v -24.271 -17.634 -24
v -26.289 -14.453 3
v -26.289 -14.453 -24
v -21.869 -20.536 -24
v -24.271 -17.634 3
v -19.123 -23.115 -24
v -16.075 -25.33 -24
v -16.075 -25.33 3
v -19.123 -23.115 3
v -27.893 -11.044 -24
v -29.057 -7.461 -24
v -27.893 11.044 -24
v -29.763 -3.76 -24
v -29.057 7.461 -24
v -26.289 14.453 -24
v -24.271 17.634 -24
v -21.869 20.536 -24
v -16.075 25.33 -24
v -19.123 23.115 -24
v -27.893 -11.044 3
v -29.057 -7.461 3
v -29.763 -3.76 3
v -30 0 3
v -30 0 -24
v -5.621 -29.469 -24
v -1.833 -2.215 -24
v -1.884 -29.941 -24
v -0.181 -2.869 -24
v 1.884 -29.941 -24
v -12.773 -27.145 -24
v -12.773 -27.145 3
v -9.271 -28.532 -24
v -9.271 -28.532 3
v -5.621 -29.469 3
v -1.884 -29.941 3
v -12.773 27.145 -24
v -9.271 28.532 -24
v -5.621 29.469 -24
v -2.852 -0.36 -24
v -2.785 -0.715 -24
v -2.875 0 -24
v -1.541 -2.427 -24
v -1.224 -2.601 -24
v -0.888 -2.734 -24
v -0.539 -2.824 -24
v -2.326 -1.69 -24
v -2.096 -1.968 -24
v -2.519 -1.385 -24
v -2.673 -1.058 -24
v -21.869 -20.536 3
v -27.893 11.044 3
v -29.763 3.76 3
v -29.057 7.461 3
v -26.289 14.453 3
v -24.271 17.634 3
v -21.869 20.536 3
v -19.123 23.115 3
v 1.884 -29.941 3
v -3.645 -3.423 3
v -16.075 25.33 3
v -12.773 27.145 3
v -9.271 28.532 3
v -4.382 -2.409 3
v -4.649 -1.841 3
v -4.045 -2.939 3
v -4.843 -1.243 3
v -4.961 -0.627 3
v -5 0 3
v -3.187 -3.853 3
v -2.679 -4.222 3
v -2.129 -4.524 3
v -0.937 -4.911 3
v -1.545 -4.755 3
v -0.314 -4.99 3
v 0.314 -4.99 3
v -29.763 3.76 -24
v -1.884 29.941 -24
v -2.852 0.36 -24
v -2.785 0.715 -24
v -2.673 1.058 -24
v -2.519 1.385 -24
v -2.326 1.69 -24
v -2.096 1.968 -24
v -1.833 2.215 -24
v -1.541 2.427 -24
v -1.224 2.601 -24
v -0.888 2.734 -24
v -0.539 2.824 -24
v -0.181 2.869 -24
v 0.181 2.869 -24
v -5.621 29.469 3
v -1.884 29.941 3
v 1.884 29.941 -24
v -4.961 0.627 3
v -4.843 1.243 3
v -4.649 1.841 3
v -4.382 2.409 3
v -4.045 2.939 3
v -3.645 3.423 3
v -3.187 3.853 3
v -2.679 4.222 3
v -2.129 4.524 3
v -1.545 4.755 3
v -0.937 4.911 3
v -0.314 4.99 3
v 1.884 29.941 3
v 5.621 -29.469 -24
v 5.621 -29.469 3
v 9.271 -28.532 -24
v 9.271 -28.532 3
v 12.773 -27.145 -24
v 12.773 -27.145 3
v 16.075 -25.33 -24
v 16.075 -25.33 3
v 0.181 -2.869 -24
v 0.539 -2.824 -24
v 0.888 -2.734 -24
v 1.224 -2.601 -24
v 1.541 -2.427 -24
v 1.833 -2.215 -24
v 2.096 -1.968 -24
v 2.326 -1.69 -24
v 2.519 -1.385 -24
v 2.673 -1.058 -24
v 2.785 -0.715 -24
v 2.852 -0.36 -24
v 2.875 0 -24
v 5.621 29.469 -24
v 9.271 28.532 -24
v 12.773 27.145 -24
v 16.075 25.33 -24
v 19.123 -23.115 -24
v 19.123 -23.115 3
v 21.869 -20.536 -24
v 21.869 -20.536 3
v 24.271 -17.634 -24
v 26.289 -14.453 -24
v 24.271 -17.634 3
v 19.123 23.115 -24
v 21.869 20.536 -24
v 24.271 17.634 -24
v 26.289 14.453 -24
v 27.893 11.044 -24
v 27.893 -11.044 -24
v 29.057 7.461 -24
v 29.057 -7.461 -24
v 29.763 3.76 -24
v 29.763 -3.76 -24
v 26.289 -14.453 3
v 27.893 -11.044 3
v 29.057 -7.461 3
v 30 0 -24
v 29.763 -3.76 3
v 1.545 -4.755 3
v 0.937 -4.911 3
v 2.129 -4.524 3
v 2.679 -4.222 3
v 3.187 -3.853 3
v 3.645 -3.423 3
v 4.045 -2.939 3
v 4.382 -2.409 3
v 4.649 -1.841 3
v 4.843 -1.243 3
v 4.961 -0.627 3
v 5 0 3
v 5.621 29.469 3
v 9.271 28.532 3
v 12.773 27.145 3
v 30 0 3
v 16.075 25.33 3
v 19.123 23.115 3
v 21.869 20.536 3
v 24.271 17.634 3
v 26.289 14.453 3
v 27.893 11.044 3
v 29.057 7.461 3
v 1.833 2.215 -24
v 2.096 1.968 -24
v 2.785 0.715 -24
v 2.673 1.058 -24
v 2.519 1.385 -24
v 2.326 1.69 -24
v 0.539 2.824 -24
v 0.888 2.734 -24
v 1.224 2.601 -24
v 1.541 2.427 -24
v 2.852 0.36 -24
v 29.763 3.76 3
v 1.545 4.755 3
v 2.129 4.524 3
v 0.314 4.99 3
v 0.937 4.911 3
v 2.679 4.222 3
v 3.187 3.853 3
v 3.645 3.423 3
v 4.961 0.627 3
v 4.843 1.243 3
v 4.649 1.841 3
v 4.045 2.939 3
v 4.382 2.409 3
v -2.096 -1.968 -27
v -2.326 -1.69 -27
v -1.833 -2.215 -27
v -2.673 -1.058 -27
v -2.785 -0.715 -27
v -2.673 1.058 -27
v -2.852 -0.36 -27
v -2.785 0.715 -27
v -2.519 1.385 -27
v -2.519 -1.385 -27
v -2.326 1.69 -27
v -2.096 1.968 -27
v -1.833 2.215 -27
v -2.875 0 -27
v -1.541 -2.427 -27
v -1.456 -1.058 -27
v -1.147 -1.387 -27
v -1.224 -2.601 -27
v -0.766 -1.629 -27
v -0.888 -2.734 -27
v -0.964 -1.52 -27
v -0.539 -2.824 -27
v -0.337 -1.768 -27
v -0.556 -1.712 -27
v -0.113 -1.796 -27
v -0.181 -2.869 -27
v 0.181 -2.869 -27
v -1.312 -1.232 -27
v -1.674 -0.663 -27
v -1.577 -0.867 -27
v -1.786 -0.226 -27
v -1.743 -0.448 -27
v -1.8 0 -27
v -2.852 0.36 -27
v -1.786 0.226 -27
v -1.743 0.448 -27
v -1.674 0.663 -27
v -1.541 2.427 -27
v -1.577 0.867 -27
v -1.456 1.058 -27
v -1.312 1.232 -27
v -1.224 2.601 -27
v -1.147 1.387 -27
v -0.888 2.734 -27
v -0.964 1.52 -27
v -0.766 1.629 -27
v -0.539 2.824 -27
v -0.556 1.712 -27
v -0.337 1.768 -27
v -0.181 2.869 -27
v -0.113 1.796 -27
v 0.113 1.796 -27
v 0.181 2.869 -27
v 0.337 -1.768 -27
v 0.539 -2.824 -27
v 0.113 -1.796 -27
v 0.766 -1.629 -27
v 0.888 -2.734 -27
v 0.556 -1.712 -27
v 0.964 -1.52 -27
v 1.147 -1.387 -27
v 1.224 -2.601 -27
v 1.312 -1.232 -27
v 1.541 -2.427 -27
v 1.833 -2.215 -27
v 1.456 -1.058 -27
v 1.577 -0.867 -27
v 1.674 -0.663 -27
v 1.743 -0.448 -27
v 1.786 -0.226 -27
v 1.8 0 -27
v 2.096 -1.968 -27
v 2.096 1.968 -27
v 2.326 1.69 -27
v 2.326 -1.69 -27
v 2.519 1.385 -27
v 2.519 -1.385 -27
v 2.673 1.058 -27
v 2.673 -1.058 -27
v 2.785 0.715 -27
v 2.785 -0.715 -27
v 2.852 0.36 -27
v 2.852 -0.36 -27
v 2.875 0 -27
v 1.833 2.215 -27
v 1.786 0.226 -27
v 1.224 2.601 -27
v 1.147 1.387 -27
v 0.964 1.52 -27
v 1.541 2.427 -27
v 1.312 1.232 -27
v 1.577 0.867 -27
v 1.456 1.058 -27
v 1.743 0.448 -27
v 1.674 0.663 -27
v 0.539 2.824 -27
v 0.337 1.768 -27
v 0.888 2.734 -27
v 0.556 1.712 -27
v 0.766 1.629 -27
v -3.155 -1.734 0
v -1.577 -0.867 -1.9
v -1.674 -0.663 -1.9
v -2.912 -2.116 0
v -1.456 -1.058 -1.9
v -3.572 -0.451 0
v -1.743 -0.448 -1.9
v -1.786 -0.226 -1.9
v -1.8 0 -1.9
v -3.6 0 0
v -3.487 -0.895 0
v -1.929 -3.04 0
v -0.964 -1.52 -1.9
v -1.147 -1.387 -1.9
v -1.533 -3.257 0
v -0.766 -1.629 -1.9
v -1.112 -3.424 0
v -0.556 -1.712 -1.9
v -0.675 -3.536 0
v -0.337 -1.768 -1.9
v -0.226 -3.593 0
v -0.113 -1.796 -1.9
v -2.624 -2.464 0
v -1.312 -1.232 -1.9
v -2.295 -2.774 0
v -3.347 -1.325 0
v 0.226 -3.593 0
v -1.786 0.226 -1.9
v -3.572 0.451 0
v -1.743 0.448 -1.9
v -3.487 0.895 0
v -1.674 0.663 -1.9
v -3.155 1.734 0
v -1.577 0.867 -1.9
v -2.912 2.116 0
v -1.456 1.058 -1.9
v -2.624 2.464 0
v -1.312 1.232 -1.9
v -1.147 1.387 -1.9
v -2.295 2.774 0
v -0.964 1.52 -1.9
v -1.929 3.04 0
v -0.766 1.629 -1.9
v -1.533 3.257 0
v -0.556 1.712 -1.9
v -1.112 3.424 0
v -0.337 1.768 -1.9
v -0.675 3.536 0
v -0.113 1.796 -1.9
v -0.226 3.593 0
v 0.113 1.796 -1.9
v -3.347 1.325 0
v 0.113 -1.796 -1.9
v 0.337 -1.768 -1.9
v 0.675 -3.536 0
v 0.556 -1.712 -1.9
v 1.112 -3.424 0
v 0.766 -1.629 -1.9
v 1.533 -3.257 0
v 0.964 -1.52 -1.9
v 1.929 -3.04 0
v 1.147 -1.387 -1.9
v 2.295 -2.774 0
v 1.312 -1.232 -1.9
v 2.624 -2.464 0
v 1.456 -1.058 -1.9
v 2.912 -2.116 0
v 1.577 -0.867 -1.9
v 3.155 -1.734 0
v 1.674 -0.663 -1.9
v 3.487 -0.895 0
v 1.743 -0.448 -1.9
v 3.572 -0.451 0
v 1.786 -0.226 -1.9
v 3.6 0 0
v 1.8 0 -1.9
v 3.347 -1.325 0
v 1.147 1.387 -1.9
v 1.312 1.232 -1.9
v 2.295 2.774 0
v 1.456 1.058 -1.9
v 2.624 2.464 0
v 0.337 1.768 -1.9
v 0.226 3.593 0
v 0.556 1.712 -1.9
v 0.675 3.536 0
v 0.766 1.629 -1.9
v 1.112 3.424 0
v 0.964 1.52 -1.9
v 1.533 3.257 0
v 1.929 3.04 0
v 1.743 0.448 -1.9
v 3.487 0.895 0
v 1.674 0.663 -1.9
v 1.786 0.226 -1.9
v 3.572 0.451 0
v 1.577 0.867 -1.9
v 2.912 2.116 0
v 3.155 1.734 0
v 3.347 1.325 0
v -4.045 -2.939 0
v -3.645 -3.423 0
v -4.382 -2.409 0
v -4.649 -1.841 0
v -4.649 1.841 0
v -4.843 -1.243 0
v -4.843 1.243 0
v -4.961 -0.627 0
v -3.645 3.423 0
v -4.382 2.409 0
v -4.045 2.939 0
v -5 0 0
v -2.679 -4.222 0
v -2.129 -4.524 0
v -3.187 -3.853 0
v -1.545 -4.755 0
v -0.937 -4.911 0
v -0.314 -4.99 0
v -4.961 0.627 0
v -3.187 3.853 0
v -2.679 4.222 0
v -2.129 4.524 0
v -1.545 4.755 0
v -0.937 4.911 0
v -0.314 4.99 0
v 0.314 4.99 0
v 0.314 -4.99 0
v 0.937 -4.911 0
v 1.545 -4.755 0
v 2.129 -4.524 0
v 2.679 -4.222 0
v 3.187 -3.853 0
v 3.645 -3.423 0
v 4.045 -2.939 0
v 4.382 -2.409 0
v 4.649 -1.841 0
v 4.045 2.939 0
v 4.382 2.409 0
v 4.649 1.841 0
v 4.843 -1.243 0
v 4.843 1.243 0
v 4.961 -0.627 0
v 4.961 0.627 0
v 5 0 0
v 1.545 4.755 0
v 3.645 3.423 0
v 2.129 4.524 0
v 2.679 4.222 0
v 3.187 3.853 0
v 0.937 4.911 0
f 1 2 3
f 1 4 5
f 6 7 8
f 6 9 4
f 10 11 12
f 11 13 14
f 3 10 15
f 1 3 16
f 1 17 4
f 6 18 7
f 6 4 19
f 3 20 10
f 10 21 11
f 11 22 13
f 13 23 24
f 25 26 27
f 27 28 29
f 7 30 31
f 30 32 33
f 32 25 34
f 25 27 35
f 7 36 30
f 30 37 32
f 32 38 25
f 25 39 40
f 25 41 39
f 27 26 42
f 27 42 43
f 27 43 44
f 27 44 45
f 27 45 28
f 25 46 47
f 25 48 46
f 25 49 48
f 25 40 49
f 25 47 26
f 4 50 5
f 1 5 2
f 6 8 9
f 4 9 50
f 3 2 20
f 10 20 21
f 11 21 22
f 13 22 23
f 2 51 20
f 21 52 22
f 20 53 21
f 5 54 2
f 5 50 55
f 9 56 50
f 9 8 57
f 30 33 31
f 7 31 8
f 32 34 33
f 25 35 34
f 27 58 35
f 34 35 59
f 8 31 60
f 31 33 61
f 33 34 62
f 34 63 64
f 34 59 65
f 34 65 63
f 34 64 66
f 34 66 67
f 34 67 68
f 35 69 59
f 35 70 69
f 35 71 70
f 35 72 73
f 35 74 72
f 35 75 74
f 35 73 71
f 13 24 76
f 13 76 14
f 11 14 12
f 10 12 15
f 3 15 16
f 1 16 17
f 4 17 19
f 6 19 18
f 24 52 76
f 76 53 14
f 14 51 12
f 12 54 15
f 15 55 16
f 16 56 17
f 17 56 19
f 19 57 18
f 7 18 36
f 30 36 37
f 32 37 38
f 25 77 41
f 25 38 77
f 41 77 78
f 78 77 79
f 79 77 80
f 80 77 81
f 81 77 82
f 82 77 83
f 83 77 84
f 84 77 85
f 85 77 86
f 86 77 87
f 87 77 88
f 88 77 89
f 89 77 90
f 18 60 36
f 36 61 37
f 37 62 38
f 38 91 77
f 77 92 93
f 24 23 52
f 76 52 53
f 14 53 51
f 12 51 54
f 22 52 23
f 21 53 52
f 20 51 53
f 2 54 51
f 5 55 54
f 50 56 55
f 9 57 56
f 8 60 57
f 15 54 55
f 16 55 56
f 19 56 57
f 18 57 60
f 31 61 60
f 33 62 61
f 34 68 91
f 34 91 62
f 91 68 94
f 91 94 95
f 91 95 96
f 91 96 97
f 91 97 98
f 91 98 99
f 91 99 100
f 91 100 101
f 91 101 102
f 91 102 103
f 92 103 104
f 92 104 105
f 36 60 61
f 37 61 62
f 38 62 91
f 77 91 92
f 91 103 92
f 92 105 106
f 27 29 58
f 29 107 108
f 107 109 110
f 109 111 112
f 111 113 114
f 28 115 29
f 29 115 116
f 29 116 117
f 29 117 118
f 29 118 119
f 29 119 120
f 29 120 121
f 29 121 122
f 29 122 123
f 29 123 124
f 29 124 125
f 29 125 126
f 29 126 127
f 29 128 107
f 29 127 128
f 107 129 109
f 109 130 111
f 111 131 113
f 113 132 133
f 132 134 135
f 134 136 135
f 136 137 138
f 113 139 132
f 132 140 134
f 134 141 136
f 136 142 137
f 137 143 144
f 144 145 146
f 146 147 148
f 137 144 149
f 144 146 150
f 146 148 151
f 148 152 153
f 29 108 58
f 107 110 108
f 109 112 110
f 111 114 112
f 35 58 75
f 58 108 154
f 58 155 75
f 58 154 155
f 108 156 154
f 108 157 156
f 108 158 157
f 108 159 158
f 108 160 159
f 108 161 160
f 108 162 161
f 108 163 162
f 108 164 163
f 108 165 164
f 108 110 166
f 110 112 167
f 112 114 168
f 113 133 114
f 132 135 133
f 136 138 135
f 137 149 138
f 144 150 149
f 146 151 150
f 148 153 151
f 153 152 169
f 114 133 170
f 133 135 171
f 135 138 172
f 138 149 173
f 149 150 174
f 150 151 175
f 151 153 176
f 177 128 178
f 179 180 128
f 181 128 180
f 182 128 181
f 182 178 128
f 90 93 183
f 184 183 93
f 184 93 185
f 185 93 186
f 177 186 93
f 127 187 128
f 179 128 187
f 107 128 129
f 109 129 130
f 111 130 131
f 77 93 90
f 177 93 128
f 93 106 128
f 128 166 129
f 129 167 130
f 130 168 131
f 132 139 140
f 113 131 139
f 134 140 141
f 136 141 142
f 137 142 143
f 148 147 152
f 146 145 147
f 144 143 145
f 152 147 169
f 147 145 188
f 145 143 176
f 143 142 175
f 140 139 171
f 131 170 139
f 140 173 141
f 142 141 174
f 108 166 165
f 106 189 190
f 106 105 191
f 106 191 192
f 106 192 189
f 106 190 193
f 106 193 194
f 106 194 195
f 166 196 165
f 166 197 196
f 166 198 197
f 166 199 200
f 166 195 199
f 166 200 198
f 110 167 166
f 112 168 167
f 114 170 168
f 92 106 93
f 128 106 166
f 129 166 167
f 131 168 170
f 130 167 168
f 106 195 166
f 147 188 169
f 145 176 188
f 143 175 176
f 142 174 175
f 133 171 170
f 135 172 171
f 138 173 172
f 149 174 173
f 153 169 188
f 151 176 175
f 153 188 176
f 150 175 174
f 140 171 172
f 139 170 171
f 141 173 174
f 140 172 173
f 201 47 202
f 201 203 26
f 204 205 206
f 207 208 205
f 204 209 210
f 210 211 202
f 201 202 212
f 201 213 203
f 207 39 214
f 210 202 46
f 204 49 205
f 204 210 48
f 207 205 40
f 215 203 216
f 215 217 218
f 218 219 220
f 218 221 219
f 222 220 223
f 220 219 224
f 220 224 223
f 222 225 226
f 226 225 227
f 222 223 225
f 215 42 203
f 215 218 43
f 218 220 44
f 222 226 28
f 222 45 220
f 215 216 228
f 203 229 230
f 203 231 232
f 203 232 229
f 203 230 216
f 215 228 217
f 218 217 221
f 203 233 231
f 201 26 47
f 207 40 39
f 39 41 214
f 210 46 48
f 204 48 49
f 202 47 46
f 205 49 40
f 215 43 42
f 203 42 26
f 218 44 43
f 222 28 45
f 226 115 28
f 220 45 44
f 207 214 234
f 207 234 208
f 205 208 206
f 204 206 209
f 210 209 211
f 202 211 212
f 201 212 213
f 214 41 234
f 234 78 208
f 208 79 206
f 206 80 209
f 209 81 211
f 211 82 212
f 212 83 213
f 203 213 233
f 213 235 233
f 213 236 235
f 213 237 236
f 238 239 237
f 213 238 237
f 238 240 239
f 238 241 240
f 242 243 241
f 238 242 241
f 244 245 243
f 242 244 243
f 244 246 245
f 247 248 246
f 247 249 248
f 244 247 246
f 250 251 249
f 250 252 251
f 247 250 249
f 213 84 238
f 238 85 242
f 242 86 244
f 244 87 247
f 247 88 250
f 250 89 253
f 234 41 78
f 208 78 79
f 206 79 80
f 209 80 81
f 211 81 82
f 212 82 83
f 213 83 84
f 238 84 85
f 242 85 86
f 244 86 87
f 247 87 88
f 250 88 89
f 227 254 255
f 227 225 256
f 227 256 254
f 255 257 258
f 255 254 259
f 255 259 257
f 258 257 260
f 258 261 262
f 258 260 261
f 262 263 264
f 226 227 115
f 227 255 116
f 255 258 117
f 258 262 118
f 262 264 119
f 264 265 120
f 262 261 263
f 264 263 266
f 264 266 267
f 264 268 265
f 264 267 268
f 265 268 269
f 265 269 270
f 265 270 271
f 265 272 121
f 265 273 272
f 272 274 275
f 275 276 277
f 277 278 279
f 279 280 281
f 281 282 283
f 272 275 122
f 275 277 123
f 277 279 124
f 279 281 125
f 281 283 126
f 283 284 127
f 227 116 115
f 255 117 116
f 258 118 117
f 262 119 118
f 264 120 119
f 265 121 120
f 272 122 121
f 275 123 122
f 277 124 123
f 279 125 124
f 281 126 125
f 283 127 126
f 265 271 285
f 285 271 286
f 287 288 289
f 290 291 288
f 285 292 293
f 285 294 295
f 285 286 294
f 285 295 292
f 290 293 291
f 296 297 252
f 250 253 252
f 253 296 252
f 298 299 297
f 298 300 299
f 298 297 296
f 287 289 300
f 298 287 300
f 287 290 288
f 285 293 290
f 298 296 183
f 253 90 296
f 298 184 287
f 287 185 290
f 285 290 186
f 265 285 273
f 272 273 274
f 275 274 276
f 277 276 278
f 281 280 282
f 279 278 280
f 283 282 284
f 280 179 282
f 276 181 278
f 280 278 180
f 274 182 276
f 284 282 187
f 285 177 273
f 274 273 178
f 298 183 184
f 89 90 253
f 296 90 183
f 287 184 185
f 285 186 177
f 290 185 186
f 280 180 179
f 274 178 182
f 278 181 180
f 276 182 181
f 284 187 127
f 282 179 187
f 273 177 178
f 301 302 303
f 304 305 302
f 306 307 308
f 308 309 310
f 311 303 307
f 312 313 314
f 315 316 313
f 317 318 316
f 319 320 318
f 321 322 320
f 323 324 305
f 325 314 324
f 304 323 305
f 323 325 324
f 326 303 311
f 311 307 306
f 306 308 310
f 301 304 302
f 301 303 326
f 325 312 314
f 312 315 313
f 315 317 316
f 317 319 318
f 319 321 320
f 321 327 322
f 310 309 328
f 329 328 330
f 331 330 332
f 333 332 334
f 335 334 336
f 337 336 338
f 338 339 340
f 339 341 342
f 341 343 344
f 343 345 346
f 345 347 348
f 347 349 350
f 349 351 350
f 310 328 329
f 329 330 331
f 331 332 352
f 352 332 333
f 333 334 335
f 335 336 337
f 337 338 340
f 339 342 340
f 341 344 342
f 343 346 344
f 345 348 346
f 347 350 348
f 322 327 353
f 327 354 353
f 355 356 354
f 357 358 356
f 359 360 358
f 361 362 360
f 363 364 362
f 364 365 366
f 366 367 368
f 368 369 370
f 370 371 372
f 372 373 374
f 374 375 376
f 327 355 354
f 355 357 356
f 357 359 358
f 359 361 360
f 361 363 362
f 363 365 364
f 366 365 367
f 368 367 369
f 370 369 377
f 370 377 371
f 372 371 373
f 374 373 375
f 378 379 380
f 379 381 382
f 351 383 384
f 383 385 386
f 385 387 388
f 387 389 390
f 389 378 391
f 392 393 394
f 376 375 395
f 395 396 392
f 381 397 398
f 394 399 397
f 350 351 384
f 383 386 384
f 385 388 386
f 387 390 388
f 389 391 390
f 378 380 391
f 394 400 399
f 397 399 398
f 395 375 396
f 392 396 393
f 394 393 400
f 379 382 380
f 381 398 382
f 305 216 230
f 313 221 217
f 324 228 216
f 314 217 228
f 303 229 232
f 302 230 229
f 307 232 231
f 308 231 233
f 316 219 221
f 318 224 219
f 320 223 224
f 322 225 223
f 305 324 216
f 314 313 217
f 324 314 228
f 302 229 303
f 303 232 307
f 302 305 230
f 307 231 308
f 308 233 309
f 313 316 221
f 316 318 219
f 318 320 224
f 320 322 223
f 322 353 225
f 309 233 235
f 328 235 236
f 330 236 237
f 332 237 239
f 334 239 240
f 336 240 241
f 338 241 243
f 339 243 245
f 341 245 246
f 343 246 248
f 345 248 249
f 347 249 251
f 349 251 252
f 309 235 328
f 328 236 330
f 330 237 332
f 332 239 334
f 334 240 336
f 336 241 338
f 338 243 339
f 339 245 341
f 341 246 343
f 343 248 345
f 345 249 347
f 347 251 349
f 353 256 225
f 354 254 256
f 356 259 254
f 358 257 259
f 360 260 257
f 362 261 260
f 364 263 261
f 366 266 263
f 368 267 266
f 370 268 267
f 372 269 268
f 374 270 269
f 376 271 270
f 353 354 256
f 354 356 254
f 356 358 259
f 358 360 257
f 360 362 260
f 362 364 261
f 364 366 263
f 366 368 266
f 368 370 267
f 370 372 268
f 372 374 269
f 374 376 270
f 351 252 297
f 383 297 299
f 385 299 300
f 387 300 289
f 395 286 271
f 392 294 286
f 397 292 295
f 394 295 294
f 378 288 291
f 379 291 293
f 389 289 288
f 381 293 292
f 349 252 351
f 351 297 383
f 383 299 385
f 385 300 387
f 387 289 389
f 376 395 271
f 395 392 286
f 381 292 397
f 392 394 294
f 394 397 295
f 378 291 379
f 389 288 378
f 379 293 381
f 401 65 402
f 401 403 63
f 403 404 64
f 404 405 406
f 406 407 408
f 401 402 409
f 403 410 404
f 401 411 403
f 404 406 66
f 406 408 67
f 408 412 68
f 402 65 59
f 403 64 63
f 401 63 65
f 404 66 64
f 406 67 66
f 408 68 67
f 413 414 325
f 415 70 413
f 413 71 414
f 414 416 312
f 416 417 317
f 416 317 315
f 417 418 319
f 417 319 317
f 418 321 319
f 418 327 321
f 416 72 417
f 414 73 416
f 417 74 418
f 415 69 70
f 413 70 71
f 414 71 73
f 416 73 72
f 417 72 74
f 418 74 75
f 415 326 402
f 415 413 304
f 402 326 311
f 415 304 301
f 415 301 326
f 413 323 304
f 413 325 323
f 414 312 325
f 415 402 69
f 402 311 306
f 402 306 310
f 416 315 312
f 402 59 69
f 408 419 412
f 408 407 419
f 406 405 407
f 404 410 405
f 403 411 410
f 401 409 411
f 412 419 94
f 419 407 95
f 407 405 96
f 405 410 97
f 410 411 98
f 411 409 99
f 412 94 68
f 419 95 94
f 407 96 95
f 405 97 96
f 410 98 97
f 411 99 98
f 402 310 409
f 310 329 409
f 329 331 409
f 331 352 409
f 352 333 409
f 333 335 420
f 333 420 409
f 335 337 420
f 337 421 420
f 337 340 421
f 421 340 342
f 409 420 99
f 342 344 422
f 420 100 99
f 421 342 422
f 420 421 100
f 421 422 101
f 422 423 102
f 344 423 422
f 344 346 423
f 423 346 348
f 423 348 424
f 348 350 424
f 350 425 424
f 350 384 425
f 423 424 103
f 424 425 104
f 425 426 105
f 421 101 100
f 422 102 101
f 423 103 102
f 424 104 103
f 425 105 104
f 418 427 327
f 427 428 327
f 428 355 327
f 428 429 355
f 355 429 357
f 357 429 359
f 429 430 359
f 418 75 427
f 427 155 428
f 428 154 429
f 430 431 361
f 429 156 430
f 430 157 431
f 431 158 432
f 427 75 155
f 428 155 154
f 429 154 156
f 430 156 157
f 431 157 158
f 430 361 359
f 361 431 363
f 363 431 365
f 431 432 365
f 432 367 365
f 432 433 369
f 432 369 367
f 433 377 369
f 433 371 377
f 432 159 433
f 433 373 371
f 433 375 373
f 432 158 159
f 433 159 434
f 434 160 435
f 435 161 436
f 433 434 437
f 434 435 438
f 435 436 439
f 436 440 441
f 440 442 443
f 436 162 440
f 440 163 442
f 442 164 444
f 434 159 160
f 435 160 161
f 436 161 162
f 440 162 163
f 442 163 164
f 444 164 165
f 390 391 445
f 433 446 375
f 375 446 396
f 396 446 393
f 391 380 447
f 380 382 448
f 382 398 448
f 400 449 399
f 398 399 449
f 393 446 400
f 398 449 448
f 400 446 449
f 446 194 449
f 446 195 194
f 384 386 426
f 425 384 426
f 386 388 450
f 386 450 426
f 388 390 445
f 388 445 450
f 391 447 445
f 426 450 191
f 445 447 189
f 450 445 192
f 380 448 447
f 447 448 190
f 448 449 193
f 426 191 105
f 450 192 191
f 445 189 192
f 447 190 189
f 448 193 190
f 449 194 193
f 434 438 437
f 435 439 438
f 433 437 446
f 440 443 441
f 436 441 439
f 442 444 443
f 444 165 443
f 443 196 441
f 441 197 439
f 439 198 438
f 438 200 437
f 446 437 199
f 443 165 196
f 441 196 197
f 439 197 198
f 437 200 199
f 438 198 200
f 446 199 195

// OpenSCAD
$fn = 50;

difference() {
	union() {
		translate(v = [0, 0, -24.0]) {
			cylinder(h = 27, r = 30.0);
		}
		#translate(v = [0, 0, -27.0]) {
			cylinder(h = 27, r = 2.875);
		}
	}
	union() {
		translate(v = [0, 0, 0]) {
			rotate(a = [0, 0, 0]) {
				difference() {
					union() {
						translate(v = [0, 0, -27.0]) {
							cylinder(h = 27, r = 1.5);
						}
						translate(v = [0, 0, -1.9]) {
							cylinder(h = 1.9, r1 = 1.8, r2 = 3.6);
						}
						translate(v = [0, 0, -27.0]) {
							cylinder(h = 27, r = 1.8);
						}
						translate(v = [0, 0, -27.0]) {
							cylinder(h = 27, r = 1.5);
						}
					}
					union();
				}
			}
		}
		#cylinder(h = 3, r = 5.0);
	}
}
